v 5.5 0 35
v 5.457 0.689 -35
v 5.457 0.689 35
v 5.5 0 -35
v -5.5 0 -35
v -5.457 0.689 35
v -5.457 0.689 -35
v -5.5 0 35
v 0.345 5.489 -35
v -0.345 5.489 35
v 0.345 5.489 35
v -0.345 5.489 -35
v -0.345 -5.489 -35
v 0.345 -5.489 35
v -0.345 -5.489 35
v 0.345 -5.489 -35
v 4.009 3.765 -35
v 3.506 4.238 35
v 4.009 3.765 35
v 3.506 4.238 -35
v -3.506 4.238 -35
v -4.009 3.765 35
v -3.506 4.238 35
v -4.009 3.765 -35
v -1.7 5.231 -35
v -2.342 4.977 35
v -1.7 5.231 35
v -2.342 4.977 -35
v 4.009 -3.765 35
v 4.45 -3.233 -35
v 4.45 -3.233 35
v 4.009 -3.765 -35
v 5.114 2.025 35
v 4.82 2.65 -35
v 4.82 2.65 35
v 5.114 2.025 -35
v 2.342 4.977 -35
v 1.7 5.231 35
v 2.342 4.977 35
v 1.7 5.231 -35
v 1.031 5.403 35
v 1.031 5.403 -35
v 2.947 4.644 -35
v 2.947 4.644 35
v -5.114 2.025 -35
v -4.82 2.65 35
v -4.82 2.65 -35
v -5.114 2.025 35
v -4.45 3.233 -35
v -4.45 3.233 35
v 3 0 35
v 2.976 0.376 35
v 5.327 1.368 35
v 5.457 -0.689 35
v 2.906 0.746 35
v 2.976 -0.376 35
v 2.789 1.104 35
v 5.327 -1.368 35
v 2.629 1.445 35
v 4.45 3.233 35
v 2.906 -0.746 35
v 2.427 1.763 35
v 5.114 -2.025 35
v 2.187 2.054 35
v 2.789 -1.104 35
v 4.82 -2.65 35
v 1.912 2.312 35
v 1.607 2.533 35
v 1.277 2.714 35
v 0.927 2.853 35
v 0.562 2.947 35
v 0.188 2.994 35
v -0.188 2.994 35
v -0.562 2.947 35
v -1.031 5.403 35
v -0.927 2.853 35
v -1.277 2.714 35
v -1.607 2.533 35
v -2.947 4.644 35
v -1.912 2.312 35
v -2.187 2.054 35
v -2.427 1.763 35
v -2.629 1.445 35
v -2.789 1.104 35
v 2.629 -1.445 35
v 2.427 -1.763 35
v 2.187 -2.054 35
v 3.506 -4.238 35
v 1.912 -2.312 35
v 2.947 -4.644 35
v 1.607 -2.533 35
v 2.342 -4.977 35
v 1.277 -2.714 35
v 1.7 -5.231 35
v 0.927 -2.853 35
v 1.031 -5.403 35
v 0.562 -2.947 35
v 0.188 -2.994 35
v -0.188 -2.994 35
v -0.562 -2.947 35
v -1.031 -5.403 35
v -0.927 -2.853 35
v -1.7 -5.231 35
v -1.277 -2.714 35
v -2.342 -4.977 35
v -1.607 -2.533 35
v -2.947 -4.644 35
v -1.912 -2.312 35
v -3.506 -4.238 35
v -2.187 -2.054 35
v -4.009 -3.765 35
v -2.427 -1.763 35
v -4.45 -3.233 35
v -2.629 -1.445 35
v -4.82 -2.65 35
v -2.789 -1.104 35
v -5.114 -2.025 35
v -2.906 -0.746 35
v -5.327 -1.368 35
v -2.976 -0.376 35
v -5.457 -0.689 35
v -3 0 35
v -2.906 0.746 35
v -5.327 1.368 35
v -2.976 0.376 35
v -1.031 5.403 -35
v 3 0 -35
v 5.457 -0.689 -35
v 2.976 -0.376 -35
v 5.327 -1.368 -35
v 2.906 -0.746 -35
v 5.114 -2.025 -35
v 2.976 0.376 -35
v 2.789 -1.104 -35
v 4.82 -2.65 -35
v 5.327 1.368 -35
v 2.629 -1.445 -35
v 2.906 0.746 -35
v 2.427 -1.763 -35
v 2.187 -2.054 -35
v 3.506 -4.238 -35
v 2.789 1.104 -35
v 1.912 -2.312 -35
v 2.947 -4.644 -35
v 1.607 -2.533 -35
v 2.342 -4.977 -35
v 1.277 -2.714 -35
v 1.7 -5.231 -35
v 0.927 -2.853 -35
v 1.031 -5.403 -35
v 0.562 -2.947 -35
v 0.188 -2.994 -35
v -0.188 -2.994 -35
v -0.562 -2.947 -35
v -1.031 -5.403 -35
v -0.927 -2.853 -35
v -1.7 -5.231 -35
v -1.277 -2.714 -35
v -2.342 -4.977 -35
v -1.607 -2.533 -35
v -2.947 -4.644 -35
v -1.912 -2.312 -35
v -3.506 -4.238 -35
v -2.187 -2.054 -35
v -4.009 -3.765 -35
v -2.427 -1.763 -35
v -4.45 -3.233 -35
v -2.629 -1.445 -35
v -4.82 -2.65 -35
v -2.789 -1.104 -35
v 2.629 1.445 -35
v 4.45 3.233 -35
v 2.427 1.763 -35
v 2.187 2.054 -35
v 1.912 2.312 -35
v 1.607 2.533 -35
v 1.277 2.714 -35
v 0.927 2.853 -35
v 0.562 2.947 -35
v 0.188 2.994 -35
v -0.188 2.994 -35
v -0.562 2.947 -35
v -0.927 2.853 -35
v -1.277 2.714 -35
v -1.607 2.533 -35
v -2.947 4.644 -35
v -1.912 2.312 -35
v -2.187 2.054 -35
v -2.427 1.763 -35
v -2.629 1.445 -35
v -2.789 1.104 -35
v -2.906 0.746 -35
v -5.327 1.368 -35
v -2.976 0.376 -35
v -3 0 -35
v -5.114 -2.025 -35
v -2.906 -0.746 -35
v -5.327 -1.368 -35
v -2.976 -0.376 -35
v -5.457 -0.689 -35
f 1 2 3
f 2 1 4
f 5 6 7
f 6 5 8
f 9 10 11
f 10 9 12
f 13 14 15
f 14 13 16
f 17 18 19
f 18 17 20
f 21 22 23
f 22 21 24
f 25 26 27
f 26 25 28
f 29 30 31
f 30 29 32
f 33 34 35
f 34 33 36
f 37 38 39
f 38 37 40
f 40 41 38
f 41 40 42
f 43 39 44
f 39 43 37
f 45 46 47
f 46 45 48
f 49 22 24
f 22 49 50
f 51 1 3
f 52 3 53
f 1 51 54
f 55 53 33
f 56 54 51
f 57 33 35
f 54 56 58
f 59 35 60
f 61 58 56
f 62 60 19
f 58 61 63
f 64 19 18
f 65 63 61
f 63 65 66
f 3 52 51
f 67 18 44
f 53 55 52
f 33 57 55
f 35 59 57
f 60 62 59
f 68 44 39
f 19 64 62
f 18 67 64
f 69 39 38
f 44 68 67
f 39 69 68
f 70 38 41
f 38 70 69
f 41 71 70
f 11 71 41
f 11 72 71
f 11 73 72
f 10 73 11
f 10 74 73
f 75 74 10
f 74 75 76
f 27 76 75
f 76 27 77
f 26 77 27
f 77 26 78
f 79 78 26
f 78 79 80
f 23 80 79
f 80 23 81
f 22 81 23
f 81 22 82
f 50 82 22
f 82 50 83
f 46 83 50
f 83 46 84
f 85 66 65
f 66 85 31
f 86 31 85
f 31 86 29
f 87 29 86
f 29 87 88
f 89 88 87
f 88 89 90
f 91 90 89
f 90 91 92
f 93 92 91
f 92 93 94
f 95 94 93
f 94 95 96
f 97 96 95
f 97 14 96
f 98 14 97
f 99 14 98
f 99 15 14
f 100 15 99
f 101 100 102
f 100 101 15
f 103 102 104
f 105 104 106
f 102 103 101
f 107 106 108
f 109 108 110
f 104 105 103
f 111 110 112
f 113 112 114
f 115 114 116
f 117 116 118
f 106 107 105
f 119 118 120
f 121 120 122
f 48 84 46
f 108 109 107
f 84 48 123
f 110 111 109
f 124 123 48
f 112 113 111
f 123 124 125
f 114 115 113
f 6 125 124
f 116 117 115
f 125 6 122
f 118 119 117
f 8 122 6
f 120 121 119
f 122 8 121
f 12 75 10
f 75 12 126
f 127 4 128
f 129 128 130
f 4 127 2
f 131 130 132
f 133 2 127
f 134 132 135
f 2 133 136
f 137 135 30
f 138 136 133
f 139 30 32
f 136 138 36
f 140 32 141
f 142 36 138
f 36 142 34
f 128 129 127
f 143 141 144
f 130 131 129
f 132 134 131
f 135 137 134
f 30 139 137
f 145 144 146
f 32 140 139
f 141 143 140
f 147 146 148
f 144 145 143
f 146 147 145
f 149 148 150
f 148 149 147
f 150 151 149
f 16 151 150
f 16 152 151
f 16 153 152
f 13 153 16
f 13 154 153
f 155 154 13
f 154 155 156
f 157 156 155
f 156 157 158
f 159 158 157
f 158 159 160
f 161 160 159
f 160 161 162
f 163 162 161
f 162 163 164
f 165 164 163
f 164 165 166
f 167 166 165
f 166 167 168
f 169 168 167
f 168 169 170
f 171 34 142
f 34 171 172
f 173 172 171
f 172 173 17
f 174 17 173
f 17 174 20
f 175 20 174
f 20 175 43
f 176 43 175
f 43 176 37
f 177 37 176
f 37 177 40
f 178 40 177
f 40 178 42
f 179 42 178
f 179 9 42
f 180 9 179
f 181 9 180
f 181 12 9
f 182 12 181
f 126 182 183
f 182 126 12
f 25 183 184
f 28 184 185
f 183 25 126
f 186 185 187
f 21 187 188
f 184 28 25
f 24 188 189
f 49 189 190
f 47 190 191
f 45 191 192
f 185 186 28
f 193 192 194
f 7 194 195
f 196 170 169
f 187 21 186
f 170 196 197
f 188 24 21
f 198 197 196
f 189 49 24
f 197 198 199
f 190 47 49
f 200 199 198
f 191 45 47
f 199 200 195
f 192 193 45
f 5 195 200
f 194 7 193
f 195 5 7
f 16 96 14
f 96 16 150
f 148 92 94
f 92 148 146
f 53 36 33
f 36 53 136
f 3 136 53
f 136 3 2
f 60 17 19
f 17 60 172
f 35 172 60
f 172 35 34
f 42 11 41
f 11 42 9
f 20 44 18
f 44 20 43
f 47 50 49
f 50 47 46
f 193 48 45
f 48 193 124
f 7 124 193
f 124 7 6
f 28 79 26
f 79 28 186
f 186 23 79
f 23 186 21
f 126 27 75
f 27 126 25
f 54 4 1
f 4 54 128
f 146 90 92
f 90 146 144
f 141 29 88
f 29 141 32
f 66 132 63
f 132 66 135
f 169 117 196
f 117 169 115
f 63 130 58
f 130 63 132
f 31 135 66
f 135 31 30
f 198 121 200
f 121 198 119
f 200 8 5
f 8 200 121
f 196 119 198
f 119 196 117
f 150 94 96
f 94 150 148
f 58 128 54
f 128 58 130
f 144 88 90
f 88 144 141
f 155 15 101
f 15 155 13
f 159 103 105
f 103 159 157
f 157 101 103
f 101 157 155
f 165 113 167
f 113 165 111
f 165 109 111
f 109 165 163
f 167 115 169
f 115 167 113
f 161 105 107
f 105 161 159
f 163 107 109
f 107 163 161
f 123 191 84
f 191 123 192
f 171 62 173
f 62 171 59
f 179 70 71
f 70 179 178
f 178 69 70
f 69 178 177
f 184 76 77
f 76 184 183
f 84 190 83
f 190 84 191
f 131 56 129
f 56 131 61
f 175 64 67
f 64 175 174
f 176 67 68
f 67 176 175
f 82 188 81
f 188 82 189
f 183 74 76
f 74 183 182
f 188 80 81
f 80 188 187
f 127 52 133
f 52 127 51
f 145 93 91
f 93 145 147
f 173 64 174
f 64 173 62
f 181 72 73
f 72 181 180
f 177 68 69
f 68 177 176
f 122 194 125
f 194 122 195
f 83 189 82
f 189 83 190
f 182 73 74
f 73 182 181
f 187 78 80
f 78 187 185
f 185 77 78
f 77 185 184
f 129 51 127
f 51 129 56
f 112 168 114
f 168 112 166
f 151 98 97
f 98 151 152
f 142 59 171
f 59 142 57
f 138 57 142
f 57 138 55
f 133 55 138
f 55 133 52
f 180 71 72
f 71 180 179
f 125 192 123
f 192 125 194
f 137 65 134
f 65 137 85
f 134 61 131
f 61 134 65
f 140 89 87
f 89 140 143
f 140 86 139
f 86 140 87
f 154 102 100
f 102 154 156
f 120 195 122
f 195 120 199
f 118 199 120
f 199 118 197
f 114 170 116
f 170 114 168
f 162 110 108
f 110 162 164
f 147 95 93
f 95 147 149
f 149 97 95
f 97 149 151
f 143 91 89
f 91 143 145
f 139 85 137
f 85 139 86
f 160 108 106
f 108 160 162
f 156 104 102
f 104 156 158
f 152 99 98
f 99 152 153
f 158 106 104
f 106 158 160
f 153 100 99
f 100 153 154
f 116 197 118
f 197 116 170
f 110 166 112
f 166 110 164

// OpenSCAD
$fn = 50;


difference() {
	union() {
		translate(v = [0, 0, -35.0000000000]) {
			cylinder(h = 70, r = 5.5000000000);
		}
	}
	union() {
		translate(v = [0, 0, -100.0000000000]) {
			cylinder(h = 200, r = 3);
		}
	}
}
